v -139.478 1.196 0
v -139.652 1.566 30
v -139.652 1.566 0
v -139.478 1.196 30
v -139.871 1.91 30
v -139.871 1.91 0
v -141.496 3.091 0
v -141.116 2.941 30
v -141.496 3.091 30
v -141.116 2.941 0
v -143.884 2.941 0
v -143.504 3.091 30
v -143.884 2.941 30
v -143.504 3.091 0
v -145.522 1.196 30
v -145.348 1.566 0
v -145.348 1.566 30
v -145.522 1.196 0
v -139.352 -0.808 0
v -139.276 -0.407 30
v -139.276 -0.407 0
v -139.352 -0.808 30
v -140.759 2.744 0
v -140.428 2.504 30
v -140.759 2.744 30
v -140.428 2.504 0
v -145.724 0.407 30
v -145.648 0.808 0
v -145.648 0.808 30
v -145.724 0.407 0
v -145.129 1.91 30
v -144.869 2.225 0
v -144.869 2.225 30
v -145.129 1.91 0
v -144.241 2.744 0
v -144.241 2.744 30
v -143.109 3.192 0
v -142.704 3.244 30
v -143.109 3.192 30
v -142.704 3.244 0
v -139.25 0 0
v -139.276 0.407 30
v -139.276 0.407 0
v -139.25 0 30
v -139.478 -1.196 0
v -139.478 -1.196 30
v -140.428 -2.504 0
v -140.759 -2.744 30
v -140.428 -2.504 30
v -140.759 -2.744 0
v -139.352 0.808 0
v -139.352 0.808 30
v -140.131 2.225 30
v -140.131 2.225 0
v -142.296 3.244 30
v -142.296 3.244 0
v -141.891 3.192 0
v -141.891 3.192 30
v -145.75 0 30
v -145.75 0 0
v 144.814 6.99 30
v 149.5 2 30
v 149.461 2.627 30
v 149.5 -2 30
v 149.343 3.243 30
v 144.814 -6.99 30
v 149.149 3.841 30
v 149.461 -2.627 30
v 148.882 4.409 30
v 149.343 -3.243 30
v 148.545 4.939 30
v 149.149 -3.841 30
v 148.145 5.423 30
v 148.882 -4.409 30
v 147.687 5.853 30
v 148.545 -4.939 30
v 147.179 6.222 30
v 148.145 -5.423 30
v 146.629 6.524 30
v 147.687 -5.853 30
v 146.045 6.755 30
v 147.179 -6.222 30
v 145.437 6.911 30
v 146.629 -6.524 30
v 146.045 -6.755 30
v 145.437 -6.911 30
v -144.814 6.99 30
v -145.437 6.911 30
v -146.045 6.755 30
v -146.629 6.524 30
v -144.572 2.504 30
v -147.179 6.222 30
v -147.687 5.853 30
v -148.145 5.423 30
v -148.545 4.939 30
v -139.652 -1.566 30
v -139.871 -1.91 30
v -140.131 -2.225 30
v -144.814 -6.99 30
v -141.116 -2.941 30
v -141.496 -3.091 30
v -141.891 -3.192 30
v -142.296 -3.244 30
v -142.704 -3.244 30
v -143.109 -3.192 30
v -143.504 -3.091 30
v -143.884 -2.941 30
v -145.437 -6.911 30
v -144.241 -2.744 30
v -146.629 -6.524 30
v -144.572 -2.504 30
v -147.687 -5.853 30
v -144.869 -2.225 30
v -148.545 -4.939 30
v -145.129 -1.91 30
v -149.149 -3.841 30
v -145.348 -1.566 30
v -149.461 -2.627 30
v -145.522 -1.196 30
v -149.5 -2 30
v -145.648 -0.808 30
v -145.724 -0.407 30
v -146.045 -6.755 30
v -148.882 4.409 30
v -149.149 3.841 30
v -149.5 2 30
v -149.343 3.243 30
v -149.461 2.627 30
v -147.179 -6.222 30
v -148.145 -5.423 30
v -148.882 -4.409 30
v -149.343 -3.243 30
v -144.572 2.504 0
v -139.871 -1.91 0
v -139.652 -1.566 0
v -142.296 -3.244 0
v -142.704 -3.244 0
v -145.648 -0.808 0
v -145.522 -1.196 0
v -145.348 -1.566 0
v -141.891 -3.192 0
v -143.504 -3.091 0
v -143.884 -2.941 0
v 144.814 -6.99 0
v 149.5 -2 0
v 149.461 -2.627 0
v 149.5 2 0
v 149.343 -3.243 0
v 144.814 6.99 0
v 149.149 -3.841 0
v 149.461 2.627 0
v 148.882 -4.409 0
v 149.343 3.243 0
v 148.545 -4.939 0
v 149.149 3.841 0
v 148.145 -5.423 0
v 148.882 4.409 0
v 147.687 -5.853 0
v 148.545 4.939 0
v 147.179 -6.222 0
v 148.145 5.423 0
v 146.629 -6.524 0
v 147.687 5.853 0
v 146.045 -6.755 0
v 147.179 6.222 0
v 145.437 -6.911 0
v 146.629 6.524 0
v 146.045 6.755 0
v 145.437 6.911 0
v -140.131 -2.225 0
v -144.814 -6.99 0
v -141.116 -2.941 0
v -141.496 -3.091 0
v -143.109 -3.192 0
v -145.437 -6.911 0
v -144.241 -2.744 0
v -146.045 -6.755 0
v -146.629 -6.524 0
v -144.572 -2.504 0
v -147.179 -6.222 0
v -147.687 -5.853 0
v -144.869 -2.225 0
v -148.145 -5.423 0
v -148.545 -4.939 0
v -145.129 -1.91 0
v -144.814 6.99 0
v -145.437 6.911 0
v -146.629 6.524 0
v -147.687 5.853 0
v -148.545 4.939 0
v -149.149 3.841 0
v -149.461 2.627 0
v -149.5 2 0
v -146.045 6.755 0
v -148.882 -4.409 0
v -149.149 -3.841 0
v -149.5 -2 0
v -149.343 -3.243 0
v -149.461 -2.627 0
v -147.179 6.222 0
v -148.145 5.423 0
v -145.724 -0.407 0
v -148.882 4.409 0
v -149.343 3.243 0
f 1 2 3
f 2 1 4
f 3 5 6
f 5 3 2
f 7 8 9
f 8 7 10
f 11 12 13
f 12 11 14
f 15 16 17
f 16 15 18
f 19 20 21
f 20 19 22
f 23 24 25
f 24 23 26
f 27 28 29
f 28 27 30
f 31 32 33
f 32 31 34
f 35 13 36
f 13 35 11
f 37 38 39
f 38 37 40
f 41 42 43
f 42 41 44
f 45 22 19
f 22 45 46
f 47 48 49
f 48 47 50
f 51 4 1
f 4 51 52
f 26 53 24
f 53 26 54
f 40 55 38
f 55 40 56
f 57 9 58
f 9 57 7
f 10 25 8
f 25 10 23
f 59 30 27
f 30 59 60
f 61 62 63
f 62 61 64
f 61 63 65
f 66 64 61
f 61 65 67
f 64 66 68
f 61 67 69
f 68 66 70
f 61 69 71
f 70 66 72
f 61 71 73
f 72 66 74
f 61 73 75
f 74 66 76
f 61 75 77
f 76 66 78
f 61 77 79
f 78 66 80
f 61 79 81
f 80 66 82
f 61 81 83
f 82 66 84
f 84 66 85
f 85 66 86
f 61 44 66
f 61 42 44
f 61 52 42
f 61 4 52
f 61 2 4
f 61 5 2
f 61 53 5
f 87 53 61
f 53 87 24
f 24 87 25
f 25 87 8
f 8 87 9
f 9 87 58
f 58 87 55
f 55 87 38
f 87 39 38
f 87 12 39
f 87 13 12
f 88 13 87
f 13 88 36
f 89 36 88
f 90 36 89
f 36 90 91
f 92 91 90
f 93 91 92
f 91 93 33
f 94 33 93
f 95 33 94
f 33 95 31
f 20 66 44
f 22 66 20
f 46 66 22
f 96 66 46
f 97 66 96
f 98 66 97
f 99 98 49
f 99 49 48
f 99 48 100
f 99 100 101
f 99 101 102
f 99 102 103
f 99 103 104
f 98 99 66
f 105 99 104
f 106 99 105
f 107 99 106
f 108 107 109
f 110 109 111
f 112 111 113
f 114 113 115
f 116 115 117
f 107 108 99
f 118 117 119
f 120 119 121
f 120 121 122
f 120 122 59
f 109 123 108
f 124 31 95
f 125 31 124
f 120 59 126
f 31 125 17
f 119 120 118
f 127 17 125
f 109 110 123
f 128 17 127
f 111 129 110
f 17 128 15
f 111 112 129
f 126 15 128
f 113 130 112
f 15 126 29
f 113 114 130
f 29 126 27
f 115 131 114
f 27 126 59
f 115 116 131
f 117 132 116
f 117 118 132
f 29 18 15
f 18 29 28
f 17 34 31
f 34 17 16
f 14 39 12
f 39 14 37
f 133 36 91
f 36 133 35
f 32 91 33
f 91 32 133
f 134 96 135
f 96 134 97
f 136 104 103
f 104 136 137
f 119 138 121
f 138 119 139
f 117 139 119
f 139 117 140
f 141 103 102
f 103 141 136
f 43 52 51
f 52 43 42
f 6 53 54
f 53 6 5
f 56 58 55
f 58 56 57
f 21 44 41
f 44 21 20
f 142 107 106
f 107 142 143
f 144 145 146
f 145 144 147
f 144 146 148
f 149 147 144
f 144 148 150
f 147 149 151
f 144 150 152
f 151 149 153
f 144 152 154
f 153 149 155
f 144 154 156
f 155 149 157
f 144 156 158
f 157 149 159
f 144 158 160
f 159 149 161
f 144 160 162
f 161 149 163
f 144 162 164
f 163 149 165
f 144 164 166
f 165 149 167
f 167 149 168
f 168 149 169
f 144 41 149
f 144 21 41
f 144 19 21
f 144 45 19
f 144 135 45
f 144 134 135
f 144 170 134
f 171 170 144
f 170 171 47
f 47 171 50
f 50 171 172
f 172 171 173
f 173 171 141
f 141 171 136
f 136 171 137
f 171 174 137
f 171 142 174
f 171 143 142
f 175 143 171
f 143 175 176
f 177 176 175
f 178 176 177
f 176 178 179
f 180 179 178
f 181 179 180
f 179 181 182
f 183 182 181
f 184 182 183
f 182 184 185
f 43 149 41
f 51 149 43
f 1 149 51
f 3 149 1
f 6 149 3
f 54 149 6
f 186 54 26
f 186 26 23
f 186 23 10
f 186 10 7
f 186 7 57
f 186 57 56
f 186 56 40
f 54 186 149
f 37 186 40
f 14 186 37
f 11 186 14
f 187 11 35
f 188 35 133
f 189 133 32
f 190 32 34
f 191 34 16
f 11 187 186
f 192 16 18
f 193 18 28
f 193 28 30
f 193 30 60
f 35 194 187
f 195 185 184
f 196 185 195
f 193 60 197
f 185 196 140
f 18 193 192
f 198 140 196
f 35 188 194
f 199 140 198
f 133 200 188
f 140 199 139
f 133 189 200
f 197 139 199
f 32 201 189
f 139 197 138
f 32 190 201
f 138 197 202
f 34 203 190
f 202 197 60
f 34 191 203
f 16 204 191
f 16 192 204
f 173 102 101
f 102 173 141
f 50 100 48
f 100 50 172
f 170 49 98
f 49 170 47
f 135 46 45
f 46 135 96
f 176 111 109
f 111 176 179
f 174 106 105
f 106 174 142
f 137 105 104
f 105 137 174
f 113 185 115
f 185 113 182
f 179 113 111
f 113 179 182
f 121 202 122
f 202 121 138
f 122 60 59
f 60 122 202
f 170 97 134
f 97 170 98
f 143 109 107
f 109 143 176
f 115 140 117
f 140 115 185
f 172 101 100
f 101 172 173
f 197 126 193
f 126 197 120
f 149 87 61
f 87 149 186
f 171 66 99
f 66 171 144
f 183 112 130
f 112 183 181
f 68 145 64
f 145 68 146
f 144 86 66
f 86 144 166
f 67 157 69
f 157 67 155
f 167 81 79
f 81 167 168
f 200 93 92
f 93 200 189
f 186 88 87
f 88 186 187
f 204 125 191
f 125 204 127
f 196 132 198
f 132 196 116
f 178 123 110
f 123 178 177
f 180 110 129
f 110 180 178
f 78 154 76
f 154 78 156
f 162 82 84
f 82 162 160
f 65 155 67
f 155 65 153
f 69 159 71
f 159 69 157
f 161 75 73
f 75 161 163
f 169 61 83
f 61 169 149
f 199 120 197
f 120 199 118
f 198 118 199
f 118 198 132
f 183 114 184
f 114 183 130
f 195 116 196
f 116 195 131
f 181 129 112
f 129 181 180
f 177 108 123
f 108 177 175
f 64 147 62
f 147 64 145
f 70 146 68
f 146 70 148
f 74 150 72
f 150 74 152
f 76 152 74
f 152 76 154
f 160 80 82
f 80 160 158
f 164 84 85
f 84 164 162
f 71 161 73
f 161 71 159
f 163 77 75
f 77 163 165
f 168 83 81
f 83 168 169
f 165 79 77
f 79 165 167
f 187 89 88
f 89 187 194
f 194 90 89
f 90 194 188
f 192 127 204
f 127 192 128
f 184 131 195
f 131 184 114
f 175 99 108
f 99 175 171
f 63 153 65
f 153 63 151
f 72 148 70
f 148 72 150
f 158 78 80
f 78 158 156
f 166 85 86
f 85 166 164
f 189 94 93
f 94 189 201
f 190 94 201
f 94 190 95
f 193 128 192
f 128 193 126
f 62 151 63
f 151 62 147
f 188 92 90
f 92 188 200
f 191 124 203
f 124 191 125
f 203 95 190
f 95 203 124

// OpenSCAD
$fn = 50;


difference() {
	union() {
		hull() {
			translate(v = [-144.5000000000, 2.0000000000, 0]) {
				cylinder(h = 30, r = 5);
			}
			translate(v = [144.5000000000, 2.0000000000, 0]) {
				cylinder(h = 30, r = 5);
			}
			translate(v = [-144.5000000000, -2.0000000000, 0]) {
				cylinder(h = 30, r = 5);
			}
			translate(v = [144.5000000000, -2.0000000000, 0]) {
				cylinder(h = 30, r = 5);
			}
		}
	}
	union() {
		translate(v = [-142.5000000000, 0.0000000000, 0]) {
			cylinder(h = 30, r = 3.2500000000);
		}
		translate(v = [-142.5000000000, 0.0000000000, 0]) {
			cylinder(h = 30, r = 1.8000000000);
		}
		translate(v = [-142.5000000000, 0.0000000000, 0]) {
			cylinder(h = 30, r = 1.8000000000);
		}
		translate(v = [-142.5000000000, 0.0000000000, 0]) {
			cylinder(h = 30, r = 1.8000000000);
		}
	}
}
